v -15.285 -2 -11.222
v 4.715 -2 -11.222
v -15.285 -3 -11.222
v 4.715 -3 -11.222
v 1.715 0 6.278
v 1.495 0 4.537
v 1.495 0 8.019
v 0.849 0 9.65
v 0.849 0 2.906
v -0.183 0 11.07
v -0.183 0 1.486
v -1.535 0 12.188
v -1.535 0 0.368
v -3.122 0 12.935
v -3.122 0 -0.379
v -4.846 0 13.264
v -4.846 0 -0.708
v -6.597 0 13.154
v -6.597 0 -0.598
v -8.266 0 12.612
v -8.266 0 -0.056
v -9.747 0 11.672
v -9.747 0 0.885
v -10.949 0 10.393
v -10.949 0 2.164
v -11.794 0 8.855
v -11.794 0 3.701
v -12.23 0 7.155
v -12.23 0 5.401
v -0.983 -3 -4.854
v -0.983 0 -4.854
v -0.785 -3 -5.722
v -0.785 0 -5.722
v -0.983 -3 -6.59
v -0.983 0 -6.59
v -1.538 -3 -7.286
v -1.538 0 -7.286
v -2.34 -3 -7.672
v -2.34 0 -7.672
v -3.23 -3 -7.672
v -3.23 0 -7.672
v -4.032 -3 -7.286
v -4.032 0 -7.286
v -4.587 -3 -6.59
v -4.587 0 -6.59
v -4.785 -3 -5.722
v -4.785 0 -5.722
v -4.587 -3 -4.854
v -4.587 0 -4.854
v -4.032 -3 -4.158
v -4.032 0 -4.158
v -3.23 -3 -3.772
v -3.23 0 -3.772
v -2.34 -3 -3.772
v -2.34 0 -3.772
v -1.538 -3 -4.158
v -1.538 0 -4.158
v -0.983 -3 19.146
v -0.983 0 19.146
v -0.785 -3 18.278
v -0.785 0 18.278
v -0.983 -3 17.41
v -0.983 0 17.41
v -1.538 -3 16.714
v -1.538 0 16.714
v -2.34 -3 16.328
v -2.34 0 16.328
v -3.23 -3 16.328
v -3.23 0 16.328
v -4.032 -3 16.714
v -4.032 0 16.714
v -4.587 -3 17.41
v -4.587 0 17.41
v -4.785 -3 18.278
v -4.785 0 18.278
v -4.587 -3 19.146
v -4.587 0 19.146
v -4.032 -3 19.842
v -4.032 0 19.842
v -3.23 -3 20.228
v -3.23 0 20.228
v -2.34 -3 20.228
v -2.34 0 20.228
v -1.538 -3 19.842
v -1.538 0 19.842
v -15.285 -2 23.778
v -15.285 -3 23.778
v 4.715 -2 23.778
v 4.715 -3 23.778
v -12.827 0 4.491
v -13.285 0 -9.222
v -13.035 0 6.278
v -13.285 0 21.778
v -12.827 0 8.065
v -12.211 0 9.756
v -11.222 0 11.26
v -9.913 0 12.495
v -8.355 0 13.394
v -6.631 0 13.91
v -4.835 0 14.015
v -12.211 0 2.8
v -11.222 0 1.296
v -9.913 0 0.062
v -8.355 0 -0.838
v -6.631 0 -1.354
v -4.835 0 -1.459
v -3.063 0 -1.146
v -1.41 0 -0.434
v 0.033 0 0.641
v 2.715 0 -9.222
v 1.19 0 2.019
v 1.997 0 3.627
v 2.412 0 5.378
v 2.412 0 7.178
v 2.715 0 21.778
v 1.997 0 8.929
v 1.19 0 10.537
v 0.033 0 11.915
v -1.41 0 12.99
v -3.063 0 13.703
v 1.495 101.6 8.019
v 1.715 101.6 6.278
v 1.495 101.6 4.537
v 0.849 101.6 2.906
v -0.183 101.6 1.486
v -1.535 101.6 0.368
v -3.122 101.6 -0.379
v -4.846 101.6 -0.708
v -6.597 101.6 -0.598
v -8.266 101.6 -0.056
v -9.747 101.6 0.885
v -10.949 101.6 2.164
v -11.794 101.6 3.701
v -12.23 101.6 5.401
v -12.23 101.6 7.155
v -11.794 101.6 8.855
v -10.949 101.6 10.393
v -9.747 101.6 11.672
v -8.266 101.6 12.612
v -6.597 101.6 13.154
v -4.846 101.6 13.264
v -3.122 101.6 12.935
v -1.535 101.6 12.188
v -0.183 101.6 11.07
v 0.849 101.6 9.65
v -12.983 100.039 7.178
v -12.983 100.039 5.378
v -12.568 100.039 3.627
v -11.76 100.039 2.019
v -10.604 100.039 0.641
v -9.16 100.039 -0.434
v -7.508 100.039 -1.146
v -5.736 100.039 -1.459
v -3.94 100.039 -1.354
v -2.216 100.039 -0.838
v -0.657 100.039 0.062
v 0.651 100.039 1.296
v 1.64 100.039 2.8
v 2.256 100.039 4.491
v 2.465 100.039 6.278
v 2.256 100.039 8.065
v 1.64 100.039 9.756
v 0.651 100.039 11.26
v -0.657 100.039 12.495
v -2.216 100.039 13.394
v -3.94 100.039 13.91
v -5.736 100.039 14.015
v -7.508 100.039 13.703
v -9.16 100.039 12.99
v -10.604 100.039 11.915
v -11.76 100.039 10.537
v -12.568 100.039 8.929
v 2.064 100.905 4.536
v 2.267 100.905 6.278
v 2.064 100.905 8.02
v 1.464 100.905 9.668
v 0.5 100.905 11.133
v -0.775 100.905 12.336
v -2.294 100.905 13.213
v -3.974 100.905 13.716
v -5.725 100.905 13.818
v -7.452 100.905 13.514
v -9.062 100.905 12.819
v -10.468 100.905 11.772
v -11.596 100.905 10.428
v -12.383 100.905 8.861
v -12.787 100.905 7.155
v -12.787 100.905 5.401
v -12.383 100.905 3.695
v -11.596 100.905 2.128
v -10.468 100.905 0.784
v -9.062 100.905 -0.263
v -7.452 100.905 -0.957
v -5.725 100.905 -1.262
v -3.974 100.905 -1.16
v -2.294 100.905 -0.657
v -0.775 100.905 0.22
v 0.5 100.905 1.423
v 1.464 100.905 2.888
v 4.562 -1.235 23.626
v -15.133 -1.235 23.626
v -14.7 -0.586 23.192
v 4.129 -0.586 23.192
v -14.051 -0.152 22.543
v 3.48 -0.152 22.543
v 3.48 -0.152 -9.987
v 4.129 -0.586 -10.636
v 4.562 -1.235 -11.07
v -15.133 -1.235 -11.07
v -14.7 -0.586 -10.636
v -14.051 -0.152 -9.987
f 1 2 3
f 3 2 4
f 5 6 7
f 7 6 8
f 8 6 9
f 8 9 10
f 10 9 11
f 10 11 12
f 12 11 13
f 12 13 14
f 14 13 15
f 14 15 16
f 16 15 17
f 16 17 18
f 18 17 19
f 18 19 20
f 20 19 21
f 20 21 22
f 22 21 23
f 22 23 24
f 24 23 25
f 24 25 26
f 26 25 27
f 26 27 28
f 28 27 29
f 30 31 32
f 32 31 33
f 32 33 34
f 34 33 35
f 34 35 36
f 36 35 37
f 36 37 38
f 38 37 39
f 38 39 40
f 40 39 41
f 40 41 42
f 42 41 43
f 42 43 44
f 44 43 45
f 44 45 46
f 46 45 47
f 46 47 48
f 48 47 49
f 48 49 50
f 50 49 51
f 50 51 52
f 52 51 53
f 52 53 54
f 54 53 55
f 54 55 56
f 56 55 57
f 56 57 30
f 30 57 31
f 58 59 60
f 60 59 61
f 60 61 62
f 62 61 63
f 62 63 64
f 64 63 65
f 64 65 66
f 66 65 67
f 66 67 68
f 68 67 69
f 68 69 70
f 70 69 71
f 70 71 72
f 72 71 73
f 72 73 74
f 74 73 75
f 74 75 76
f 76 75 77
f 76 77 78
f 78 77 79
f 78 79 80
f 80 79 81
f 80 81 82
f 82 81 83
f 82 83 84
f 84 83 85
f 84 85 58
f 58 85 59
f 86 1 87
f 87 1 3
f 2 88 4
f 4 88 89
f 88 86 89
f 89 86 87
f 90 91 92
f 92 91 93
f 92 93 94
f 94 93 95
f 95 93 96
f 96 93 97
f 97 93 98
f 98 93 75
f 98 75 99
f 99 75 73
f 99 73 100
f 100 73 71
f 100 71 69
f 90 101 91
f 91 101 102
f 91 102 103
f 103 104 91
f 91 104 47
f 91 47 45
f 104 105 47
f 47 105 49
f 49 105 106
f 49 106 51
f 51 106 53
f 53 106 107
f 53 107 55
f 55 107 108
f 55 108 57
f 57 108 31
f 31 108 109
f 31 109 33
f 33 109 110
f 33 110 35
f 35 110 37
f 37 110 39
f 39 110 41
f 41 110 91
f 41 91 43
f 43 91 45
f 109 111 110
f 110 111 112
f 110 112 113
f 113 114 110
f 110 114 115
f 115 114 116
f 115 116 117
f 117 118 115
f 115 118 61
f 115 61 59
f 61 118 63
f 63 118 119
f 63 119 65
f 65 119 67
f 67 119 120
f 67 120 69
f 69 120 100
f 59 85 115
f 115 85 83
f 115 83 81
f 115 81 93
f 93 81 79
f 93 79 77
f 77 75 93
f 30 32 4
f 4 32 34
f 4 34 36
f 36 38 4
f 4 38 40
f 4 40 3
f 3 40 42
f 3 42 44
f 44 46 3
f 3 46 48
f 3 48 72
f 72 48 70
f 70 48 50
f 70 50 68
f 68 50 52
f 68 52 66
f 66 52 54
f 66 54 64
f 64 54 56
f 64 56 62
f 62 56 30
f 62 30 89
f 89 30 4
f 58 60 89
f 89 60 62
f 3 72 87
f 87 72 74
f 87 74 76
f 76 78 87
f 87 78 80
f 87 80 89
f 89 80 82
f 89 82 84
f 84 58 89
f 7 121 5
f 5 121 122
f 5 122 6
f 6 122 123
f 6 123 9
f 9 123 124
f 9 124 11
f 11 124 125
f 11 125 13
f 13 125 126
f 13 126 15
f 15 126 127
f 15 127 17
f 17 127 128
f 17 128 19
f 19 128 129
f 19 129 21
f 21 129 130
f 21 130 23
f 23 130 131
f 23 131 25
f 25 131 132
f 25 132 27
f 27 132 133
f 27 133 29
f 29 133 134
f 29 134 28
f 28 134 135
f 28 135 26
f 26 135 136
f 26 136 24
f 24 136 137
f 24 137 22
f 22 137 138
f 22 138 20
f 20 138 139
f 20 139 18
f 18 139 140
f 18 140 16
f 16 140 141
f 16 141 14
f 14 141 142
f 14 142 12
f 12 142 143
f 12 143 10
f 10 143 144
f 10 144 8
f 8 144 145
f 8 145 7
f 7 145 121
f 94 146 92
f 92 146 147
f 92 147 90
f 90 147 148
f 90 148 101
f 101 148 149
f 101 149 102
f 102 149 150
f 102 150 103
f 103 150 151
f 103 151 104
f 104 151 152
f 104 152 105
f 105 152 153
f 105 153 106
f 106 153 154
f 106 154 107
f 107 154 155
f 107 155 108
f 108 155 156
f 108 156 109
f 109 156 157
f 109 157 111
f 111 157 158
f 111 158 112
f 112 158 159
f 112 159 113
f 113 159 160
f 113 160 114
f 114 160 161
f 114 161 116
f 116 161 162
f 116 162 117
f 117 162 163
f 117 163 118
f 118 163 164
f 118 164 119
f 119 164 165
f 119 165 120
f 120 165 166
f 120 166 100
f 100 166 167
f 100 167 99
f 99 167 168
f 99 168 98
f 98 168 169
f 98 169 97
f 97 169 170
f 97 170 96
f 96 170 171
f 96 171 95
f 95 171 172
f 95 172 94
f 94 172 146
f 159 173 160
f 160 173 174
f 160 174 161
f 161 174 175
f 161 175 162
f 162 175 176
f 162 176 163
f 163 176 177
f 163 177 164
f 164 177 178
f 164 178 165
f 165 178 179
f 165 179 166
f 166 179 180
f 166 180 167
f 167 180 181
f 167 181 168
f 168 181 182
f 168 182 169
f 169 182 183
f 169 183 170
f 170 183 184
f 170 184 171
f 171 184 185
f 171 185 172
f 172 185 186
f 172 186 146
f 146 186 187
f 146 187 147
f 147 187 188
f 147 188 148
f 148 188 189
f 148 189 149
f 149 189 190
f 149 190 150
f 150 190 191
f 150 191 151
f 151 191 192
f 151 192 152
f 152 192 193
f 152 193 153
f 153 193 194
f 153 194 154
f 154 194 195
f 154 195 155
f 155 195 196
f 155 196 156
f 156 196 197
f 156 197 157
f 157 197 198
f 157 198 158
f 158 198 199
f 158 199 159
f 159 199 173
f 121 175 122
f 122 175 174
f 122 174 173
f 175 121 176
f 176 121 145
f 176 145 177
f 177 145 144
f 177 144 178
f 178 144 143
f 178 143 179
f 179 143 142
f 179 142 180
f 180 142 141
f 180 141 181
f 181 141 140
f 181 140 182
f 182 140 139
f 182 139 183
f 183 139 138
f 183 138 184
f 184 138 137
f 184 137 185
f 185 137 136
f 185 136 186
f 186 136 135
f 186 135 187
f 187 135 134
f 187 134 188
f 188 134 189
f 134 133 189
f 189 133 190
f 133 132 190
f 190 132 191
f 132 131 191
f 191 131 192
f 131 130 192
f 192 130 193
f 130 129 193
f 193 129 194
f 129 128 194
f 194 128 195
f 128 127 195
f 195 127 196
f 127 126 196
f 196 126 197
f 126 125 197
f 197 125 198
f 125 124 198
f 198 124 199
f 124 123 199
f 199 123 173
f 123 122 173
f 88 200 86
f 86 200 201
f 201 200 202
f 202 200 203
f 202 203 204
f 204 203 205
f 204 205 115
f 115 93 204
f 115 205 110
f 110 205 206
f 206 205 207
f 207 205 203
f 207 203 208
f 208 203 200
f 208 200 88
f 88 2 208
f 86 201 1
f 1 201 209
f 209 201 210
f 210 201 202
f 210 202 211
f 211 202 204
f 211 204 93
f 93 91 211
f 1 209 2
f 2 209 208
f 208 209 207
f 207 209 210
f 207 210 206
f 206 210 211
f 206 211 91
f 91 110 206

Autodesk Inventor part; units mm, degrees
ref_plane "YZ Plane" through (0, 0, 0) normal (1, 0, 0) x (0, 1, 0)
ref_plane "XZ Plane" through (0, 0, 0) normal (0, 1, 0) x (-1, 0, 0)
ref_plane "XY Plane" through (0, 0, 0) normal (0, 0, 1) x (1, 0, 0)
sketch "Sketch1" plane through (0, 0, 0) normal (0, 1, 0) x (-1, 0, 0)
  circle A0 centre (5.2854, 6.2781) radius 7.75
  point P0 (0, 0)
  dimension "d0" = 15.5
extrude "Extrusion1" add sketch "Sketch1" along normal blind 101.6
sketch "Sketch2" plane through (-5.2854, 101.6, 6.2781) normal (0, 1, 0) x (1, 0, 0)
  circle A0 centre (0, 0) radius 7.75 construction
  circle A1 centre (0, 0) radius 7
  point P0 (5.2854, 6.2781)
  dimension "d3" = 14
  dimension "d4" = 0
extrude "Extrusion2" cut sketch "Sketch2" against normal blind 101.6
sketch "Sketch3" plane through (-5.2854, 0, 6.2781) normal (0, -1, 0) x (1, 0, 0)
  circle A0 centre (0, 0) radius 7 construction
  line L0 (10, 17.5) -> (-10, 17.5)
  line L1 (-10, 17.5) -> (-10, -17.5)
  line L2 (-10, -17.5) -> (10, -17.5)
  line L3 (10, -17.5) -> (10, 17.5)
  circle A1 centre (2.5, 12) radius 2
  circle A2 centre (2.5, -12) radius 2
  point P0 (5.2854, -6.2781)
  dimension "d7" = 35
  dimension "d8" = 20
  dimension "d11" = 17.5
  dimension "d12" = 10
  dimension "d14" = 4
  dimension "d15" = 4
  dimension "d16" = 24
  dimension "d17" = 5.5
  dimension "d18" = 7.5
  dimension "d19" = 7.5
extrude "Extrusion3" add sketch "Sketch3" along normal blind 3
fillet "Fillet1" radius 2 4 edges at (-5.2854, 0, 23.7781) (-15.2854, 0, 6.2781) (-5.2854, 0, -11.2219) (4.7146, 0, 6.2781)
fillet "Fillet2" radius 2 1 edges at (2.4646, 101.6, 6.2781)
properties part number "Flag Holder"
